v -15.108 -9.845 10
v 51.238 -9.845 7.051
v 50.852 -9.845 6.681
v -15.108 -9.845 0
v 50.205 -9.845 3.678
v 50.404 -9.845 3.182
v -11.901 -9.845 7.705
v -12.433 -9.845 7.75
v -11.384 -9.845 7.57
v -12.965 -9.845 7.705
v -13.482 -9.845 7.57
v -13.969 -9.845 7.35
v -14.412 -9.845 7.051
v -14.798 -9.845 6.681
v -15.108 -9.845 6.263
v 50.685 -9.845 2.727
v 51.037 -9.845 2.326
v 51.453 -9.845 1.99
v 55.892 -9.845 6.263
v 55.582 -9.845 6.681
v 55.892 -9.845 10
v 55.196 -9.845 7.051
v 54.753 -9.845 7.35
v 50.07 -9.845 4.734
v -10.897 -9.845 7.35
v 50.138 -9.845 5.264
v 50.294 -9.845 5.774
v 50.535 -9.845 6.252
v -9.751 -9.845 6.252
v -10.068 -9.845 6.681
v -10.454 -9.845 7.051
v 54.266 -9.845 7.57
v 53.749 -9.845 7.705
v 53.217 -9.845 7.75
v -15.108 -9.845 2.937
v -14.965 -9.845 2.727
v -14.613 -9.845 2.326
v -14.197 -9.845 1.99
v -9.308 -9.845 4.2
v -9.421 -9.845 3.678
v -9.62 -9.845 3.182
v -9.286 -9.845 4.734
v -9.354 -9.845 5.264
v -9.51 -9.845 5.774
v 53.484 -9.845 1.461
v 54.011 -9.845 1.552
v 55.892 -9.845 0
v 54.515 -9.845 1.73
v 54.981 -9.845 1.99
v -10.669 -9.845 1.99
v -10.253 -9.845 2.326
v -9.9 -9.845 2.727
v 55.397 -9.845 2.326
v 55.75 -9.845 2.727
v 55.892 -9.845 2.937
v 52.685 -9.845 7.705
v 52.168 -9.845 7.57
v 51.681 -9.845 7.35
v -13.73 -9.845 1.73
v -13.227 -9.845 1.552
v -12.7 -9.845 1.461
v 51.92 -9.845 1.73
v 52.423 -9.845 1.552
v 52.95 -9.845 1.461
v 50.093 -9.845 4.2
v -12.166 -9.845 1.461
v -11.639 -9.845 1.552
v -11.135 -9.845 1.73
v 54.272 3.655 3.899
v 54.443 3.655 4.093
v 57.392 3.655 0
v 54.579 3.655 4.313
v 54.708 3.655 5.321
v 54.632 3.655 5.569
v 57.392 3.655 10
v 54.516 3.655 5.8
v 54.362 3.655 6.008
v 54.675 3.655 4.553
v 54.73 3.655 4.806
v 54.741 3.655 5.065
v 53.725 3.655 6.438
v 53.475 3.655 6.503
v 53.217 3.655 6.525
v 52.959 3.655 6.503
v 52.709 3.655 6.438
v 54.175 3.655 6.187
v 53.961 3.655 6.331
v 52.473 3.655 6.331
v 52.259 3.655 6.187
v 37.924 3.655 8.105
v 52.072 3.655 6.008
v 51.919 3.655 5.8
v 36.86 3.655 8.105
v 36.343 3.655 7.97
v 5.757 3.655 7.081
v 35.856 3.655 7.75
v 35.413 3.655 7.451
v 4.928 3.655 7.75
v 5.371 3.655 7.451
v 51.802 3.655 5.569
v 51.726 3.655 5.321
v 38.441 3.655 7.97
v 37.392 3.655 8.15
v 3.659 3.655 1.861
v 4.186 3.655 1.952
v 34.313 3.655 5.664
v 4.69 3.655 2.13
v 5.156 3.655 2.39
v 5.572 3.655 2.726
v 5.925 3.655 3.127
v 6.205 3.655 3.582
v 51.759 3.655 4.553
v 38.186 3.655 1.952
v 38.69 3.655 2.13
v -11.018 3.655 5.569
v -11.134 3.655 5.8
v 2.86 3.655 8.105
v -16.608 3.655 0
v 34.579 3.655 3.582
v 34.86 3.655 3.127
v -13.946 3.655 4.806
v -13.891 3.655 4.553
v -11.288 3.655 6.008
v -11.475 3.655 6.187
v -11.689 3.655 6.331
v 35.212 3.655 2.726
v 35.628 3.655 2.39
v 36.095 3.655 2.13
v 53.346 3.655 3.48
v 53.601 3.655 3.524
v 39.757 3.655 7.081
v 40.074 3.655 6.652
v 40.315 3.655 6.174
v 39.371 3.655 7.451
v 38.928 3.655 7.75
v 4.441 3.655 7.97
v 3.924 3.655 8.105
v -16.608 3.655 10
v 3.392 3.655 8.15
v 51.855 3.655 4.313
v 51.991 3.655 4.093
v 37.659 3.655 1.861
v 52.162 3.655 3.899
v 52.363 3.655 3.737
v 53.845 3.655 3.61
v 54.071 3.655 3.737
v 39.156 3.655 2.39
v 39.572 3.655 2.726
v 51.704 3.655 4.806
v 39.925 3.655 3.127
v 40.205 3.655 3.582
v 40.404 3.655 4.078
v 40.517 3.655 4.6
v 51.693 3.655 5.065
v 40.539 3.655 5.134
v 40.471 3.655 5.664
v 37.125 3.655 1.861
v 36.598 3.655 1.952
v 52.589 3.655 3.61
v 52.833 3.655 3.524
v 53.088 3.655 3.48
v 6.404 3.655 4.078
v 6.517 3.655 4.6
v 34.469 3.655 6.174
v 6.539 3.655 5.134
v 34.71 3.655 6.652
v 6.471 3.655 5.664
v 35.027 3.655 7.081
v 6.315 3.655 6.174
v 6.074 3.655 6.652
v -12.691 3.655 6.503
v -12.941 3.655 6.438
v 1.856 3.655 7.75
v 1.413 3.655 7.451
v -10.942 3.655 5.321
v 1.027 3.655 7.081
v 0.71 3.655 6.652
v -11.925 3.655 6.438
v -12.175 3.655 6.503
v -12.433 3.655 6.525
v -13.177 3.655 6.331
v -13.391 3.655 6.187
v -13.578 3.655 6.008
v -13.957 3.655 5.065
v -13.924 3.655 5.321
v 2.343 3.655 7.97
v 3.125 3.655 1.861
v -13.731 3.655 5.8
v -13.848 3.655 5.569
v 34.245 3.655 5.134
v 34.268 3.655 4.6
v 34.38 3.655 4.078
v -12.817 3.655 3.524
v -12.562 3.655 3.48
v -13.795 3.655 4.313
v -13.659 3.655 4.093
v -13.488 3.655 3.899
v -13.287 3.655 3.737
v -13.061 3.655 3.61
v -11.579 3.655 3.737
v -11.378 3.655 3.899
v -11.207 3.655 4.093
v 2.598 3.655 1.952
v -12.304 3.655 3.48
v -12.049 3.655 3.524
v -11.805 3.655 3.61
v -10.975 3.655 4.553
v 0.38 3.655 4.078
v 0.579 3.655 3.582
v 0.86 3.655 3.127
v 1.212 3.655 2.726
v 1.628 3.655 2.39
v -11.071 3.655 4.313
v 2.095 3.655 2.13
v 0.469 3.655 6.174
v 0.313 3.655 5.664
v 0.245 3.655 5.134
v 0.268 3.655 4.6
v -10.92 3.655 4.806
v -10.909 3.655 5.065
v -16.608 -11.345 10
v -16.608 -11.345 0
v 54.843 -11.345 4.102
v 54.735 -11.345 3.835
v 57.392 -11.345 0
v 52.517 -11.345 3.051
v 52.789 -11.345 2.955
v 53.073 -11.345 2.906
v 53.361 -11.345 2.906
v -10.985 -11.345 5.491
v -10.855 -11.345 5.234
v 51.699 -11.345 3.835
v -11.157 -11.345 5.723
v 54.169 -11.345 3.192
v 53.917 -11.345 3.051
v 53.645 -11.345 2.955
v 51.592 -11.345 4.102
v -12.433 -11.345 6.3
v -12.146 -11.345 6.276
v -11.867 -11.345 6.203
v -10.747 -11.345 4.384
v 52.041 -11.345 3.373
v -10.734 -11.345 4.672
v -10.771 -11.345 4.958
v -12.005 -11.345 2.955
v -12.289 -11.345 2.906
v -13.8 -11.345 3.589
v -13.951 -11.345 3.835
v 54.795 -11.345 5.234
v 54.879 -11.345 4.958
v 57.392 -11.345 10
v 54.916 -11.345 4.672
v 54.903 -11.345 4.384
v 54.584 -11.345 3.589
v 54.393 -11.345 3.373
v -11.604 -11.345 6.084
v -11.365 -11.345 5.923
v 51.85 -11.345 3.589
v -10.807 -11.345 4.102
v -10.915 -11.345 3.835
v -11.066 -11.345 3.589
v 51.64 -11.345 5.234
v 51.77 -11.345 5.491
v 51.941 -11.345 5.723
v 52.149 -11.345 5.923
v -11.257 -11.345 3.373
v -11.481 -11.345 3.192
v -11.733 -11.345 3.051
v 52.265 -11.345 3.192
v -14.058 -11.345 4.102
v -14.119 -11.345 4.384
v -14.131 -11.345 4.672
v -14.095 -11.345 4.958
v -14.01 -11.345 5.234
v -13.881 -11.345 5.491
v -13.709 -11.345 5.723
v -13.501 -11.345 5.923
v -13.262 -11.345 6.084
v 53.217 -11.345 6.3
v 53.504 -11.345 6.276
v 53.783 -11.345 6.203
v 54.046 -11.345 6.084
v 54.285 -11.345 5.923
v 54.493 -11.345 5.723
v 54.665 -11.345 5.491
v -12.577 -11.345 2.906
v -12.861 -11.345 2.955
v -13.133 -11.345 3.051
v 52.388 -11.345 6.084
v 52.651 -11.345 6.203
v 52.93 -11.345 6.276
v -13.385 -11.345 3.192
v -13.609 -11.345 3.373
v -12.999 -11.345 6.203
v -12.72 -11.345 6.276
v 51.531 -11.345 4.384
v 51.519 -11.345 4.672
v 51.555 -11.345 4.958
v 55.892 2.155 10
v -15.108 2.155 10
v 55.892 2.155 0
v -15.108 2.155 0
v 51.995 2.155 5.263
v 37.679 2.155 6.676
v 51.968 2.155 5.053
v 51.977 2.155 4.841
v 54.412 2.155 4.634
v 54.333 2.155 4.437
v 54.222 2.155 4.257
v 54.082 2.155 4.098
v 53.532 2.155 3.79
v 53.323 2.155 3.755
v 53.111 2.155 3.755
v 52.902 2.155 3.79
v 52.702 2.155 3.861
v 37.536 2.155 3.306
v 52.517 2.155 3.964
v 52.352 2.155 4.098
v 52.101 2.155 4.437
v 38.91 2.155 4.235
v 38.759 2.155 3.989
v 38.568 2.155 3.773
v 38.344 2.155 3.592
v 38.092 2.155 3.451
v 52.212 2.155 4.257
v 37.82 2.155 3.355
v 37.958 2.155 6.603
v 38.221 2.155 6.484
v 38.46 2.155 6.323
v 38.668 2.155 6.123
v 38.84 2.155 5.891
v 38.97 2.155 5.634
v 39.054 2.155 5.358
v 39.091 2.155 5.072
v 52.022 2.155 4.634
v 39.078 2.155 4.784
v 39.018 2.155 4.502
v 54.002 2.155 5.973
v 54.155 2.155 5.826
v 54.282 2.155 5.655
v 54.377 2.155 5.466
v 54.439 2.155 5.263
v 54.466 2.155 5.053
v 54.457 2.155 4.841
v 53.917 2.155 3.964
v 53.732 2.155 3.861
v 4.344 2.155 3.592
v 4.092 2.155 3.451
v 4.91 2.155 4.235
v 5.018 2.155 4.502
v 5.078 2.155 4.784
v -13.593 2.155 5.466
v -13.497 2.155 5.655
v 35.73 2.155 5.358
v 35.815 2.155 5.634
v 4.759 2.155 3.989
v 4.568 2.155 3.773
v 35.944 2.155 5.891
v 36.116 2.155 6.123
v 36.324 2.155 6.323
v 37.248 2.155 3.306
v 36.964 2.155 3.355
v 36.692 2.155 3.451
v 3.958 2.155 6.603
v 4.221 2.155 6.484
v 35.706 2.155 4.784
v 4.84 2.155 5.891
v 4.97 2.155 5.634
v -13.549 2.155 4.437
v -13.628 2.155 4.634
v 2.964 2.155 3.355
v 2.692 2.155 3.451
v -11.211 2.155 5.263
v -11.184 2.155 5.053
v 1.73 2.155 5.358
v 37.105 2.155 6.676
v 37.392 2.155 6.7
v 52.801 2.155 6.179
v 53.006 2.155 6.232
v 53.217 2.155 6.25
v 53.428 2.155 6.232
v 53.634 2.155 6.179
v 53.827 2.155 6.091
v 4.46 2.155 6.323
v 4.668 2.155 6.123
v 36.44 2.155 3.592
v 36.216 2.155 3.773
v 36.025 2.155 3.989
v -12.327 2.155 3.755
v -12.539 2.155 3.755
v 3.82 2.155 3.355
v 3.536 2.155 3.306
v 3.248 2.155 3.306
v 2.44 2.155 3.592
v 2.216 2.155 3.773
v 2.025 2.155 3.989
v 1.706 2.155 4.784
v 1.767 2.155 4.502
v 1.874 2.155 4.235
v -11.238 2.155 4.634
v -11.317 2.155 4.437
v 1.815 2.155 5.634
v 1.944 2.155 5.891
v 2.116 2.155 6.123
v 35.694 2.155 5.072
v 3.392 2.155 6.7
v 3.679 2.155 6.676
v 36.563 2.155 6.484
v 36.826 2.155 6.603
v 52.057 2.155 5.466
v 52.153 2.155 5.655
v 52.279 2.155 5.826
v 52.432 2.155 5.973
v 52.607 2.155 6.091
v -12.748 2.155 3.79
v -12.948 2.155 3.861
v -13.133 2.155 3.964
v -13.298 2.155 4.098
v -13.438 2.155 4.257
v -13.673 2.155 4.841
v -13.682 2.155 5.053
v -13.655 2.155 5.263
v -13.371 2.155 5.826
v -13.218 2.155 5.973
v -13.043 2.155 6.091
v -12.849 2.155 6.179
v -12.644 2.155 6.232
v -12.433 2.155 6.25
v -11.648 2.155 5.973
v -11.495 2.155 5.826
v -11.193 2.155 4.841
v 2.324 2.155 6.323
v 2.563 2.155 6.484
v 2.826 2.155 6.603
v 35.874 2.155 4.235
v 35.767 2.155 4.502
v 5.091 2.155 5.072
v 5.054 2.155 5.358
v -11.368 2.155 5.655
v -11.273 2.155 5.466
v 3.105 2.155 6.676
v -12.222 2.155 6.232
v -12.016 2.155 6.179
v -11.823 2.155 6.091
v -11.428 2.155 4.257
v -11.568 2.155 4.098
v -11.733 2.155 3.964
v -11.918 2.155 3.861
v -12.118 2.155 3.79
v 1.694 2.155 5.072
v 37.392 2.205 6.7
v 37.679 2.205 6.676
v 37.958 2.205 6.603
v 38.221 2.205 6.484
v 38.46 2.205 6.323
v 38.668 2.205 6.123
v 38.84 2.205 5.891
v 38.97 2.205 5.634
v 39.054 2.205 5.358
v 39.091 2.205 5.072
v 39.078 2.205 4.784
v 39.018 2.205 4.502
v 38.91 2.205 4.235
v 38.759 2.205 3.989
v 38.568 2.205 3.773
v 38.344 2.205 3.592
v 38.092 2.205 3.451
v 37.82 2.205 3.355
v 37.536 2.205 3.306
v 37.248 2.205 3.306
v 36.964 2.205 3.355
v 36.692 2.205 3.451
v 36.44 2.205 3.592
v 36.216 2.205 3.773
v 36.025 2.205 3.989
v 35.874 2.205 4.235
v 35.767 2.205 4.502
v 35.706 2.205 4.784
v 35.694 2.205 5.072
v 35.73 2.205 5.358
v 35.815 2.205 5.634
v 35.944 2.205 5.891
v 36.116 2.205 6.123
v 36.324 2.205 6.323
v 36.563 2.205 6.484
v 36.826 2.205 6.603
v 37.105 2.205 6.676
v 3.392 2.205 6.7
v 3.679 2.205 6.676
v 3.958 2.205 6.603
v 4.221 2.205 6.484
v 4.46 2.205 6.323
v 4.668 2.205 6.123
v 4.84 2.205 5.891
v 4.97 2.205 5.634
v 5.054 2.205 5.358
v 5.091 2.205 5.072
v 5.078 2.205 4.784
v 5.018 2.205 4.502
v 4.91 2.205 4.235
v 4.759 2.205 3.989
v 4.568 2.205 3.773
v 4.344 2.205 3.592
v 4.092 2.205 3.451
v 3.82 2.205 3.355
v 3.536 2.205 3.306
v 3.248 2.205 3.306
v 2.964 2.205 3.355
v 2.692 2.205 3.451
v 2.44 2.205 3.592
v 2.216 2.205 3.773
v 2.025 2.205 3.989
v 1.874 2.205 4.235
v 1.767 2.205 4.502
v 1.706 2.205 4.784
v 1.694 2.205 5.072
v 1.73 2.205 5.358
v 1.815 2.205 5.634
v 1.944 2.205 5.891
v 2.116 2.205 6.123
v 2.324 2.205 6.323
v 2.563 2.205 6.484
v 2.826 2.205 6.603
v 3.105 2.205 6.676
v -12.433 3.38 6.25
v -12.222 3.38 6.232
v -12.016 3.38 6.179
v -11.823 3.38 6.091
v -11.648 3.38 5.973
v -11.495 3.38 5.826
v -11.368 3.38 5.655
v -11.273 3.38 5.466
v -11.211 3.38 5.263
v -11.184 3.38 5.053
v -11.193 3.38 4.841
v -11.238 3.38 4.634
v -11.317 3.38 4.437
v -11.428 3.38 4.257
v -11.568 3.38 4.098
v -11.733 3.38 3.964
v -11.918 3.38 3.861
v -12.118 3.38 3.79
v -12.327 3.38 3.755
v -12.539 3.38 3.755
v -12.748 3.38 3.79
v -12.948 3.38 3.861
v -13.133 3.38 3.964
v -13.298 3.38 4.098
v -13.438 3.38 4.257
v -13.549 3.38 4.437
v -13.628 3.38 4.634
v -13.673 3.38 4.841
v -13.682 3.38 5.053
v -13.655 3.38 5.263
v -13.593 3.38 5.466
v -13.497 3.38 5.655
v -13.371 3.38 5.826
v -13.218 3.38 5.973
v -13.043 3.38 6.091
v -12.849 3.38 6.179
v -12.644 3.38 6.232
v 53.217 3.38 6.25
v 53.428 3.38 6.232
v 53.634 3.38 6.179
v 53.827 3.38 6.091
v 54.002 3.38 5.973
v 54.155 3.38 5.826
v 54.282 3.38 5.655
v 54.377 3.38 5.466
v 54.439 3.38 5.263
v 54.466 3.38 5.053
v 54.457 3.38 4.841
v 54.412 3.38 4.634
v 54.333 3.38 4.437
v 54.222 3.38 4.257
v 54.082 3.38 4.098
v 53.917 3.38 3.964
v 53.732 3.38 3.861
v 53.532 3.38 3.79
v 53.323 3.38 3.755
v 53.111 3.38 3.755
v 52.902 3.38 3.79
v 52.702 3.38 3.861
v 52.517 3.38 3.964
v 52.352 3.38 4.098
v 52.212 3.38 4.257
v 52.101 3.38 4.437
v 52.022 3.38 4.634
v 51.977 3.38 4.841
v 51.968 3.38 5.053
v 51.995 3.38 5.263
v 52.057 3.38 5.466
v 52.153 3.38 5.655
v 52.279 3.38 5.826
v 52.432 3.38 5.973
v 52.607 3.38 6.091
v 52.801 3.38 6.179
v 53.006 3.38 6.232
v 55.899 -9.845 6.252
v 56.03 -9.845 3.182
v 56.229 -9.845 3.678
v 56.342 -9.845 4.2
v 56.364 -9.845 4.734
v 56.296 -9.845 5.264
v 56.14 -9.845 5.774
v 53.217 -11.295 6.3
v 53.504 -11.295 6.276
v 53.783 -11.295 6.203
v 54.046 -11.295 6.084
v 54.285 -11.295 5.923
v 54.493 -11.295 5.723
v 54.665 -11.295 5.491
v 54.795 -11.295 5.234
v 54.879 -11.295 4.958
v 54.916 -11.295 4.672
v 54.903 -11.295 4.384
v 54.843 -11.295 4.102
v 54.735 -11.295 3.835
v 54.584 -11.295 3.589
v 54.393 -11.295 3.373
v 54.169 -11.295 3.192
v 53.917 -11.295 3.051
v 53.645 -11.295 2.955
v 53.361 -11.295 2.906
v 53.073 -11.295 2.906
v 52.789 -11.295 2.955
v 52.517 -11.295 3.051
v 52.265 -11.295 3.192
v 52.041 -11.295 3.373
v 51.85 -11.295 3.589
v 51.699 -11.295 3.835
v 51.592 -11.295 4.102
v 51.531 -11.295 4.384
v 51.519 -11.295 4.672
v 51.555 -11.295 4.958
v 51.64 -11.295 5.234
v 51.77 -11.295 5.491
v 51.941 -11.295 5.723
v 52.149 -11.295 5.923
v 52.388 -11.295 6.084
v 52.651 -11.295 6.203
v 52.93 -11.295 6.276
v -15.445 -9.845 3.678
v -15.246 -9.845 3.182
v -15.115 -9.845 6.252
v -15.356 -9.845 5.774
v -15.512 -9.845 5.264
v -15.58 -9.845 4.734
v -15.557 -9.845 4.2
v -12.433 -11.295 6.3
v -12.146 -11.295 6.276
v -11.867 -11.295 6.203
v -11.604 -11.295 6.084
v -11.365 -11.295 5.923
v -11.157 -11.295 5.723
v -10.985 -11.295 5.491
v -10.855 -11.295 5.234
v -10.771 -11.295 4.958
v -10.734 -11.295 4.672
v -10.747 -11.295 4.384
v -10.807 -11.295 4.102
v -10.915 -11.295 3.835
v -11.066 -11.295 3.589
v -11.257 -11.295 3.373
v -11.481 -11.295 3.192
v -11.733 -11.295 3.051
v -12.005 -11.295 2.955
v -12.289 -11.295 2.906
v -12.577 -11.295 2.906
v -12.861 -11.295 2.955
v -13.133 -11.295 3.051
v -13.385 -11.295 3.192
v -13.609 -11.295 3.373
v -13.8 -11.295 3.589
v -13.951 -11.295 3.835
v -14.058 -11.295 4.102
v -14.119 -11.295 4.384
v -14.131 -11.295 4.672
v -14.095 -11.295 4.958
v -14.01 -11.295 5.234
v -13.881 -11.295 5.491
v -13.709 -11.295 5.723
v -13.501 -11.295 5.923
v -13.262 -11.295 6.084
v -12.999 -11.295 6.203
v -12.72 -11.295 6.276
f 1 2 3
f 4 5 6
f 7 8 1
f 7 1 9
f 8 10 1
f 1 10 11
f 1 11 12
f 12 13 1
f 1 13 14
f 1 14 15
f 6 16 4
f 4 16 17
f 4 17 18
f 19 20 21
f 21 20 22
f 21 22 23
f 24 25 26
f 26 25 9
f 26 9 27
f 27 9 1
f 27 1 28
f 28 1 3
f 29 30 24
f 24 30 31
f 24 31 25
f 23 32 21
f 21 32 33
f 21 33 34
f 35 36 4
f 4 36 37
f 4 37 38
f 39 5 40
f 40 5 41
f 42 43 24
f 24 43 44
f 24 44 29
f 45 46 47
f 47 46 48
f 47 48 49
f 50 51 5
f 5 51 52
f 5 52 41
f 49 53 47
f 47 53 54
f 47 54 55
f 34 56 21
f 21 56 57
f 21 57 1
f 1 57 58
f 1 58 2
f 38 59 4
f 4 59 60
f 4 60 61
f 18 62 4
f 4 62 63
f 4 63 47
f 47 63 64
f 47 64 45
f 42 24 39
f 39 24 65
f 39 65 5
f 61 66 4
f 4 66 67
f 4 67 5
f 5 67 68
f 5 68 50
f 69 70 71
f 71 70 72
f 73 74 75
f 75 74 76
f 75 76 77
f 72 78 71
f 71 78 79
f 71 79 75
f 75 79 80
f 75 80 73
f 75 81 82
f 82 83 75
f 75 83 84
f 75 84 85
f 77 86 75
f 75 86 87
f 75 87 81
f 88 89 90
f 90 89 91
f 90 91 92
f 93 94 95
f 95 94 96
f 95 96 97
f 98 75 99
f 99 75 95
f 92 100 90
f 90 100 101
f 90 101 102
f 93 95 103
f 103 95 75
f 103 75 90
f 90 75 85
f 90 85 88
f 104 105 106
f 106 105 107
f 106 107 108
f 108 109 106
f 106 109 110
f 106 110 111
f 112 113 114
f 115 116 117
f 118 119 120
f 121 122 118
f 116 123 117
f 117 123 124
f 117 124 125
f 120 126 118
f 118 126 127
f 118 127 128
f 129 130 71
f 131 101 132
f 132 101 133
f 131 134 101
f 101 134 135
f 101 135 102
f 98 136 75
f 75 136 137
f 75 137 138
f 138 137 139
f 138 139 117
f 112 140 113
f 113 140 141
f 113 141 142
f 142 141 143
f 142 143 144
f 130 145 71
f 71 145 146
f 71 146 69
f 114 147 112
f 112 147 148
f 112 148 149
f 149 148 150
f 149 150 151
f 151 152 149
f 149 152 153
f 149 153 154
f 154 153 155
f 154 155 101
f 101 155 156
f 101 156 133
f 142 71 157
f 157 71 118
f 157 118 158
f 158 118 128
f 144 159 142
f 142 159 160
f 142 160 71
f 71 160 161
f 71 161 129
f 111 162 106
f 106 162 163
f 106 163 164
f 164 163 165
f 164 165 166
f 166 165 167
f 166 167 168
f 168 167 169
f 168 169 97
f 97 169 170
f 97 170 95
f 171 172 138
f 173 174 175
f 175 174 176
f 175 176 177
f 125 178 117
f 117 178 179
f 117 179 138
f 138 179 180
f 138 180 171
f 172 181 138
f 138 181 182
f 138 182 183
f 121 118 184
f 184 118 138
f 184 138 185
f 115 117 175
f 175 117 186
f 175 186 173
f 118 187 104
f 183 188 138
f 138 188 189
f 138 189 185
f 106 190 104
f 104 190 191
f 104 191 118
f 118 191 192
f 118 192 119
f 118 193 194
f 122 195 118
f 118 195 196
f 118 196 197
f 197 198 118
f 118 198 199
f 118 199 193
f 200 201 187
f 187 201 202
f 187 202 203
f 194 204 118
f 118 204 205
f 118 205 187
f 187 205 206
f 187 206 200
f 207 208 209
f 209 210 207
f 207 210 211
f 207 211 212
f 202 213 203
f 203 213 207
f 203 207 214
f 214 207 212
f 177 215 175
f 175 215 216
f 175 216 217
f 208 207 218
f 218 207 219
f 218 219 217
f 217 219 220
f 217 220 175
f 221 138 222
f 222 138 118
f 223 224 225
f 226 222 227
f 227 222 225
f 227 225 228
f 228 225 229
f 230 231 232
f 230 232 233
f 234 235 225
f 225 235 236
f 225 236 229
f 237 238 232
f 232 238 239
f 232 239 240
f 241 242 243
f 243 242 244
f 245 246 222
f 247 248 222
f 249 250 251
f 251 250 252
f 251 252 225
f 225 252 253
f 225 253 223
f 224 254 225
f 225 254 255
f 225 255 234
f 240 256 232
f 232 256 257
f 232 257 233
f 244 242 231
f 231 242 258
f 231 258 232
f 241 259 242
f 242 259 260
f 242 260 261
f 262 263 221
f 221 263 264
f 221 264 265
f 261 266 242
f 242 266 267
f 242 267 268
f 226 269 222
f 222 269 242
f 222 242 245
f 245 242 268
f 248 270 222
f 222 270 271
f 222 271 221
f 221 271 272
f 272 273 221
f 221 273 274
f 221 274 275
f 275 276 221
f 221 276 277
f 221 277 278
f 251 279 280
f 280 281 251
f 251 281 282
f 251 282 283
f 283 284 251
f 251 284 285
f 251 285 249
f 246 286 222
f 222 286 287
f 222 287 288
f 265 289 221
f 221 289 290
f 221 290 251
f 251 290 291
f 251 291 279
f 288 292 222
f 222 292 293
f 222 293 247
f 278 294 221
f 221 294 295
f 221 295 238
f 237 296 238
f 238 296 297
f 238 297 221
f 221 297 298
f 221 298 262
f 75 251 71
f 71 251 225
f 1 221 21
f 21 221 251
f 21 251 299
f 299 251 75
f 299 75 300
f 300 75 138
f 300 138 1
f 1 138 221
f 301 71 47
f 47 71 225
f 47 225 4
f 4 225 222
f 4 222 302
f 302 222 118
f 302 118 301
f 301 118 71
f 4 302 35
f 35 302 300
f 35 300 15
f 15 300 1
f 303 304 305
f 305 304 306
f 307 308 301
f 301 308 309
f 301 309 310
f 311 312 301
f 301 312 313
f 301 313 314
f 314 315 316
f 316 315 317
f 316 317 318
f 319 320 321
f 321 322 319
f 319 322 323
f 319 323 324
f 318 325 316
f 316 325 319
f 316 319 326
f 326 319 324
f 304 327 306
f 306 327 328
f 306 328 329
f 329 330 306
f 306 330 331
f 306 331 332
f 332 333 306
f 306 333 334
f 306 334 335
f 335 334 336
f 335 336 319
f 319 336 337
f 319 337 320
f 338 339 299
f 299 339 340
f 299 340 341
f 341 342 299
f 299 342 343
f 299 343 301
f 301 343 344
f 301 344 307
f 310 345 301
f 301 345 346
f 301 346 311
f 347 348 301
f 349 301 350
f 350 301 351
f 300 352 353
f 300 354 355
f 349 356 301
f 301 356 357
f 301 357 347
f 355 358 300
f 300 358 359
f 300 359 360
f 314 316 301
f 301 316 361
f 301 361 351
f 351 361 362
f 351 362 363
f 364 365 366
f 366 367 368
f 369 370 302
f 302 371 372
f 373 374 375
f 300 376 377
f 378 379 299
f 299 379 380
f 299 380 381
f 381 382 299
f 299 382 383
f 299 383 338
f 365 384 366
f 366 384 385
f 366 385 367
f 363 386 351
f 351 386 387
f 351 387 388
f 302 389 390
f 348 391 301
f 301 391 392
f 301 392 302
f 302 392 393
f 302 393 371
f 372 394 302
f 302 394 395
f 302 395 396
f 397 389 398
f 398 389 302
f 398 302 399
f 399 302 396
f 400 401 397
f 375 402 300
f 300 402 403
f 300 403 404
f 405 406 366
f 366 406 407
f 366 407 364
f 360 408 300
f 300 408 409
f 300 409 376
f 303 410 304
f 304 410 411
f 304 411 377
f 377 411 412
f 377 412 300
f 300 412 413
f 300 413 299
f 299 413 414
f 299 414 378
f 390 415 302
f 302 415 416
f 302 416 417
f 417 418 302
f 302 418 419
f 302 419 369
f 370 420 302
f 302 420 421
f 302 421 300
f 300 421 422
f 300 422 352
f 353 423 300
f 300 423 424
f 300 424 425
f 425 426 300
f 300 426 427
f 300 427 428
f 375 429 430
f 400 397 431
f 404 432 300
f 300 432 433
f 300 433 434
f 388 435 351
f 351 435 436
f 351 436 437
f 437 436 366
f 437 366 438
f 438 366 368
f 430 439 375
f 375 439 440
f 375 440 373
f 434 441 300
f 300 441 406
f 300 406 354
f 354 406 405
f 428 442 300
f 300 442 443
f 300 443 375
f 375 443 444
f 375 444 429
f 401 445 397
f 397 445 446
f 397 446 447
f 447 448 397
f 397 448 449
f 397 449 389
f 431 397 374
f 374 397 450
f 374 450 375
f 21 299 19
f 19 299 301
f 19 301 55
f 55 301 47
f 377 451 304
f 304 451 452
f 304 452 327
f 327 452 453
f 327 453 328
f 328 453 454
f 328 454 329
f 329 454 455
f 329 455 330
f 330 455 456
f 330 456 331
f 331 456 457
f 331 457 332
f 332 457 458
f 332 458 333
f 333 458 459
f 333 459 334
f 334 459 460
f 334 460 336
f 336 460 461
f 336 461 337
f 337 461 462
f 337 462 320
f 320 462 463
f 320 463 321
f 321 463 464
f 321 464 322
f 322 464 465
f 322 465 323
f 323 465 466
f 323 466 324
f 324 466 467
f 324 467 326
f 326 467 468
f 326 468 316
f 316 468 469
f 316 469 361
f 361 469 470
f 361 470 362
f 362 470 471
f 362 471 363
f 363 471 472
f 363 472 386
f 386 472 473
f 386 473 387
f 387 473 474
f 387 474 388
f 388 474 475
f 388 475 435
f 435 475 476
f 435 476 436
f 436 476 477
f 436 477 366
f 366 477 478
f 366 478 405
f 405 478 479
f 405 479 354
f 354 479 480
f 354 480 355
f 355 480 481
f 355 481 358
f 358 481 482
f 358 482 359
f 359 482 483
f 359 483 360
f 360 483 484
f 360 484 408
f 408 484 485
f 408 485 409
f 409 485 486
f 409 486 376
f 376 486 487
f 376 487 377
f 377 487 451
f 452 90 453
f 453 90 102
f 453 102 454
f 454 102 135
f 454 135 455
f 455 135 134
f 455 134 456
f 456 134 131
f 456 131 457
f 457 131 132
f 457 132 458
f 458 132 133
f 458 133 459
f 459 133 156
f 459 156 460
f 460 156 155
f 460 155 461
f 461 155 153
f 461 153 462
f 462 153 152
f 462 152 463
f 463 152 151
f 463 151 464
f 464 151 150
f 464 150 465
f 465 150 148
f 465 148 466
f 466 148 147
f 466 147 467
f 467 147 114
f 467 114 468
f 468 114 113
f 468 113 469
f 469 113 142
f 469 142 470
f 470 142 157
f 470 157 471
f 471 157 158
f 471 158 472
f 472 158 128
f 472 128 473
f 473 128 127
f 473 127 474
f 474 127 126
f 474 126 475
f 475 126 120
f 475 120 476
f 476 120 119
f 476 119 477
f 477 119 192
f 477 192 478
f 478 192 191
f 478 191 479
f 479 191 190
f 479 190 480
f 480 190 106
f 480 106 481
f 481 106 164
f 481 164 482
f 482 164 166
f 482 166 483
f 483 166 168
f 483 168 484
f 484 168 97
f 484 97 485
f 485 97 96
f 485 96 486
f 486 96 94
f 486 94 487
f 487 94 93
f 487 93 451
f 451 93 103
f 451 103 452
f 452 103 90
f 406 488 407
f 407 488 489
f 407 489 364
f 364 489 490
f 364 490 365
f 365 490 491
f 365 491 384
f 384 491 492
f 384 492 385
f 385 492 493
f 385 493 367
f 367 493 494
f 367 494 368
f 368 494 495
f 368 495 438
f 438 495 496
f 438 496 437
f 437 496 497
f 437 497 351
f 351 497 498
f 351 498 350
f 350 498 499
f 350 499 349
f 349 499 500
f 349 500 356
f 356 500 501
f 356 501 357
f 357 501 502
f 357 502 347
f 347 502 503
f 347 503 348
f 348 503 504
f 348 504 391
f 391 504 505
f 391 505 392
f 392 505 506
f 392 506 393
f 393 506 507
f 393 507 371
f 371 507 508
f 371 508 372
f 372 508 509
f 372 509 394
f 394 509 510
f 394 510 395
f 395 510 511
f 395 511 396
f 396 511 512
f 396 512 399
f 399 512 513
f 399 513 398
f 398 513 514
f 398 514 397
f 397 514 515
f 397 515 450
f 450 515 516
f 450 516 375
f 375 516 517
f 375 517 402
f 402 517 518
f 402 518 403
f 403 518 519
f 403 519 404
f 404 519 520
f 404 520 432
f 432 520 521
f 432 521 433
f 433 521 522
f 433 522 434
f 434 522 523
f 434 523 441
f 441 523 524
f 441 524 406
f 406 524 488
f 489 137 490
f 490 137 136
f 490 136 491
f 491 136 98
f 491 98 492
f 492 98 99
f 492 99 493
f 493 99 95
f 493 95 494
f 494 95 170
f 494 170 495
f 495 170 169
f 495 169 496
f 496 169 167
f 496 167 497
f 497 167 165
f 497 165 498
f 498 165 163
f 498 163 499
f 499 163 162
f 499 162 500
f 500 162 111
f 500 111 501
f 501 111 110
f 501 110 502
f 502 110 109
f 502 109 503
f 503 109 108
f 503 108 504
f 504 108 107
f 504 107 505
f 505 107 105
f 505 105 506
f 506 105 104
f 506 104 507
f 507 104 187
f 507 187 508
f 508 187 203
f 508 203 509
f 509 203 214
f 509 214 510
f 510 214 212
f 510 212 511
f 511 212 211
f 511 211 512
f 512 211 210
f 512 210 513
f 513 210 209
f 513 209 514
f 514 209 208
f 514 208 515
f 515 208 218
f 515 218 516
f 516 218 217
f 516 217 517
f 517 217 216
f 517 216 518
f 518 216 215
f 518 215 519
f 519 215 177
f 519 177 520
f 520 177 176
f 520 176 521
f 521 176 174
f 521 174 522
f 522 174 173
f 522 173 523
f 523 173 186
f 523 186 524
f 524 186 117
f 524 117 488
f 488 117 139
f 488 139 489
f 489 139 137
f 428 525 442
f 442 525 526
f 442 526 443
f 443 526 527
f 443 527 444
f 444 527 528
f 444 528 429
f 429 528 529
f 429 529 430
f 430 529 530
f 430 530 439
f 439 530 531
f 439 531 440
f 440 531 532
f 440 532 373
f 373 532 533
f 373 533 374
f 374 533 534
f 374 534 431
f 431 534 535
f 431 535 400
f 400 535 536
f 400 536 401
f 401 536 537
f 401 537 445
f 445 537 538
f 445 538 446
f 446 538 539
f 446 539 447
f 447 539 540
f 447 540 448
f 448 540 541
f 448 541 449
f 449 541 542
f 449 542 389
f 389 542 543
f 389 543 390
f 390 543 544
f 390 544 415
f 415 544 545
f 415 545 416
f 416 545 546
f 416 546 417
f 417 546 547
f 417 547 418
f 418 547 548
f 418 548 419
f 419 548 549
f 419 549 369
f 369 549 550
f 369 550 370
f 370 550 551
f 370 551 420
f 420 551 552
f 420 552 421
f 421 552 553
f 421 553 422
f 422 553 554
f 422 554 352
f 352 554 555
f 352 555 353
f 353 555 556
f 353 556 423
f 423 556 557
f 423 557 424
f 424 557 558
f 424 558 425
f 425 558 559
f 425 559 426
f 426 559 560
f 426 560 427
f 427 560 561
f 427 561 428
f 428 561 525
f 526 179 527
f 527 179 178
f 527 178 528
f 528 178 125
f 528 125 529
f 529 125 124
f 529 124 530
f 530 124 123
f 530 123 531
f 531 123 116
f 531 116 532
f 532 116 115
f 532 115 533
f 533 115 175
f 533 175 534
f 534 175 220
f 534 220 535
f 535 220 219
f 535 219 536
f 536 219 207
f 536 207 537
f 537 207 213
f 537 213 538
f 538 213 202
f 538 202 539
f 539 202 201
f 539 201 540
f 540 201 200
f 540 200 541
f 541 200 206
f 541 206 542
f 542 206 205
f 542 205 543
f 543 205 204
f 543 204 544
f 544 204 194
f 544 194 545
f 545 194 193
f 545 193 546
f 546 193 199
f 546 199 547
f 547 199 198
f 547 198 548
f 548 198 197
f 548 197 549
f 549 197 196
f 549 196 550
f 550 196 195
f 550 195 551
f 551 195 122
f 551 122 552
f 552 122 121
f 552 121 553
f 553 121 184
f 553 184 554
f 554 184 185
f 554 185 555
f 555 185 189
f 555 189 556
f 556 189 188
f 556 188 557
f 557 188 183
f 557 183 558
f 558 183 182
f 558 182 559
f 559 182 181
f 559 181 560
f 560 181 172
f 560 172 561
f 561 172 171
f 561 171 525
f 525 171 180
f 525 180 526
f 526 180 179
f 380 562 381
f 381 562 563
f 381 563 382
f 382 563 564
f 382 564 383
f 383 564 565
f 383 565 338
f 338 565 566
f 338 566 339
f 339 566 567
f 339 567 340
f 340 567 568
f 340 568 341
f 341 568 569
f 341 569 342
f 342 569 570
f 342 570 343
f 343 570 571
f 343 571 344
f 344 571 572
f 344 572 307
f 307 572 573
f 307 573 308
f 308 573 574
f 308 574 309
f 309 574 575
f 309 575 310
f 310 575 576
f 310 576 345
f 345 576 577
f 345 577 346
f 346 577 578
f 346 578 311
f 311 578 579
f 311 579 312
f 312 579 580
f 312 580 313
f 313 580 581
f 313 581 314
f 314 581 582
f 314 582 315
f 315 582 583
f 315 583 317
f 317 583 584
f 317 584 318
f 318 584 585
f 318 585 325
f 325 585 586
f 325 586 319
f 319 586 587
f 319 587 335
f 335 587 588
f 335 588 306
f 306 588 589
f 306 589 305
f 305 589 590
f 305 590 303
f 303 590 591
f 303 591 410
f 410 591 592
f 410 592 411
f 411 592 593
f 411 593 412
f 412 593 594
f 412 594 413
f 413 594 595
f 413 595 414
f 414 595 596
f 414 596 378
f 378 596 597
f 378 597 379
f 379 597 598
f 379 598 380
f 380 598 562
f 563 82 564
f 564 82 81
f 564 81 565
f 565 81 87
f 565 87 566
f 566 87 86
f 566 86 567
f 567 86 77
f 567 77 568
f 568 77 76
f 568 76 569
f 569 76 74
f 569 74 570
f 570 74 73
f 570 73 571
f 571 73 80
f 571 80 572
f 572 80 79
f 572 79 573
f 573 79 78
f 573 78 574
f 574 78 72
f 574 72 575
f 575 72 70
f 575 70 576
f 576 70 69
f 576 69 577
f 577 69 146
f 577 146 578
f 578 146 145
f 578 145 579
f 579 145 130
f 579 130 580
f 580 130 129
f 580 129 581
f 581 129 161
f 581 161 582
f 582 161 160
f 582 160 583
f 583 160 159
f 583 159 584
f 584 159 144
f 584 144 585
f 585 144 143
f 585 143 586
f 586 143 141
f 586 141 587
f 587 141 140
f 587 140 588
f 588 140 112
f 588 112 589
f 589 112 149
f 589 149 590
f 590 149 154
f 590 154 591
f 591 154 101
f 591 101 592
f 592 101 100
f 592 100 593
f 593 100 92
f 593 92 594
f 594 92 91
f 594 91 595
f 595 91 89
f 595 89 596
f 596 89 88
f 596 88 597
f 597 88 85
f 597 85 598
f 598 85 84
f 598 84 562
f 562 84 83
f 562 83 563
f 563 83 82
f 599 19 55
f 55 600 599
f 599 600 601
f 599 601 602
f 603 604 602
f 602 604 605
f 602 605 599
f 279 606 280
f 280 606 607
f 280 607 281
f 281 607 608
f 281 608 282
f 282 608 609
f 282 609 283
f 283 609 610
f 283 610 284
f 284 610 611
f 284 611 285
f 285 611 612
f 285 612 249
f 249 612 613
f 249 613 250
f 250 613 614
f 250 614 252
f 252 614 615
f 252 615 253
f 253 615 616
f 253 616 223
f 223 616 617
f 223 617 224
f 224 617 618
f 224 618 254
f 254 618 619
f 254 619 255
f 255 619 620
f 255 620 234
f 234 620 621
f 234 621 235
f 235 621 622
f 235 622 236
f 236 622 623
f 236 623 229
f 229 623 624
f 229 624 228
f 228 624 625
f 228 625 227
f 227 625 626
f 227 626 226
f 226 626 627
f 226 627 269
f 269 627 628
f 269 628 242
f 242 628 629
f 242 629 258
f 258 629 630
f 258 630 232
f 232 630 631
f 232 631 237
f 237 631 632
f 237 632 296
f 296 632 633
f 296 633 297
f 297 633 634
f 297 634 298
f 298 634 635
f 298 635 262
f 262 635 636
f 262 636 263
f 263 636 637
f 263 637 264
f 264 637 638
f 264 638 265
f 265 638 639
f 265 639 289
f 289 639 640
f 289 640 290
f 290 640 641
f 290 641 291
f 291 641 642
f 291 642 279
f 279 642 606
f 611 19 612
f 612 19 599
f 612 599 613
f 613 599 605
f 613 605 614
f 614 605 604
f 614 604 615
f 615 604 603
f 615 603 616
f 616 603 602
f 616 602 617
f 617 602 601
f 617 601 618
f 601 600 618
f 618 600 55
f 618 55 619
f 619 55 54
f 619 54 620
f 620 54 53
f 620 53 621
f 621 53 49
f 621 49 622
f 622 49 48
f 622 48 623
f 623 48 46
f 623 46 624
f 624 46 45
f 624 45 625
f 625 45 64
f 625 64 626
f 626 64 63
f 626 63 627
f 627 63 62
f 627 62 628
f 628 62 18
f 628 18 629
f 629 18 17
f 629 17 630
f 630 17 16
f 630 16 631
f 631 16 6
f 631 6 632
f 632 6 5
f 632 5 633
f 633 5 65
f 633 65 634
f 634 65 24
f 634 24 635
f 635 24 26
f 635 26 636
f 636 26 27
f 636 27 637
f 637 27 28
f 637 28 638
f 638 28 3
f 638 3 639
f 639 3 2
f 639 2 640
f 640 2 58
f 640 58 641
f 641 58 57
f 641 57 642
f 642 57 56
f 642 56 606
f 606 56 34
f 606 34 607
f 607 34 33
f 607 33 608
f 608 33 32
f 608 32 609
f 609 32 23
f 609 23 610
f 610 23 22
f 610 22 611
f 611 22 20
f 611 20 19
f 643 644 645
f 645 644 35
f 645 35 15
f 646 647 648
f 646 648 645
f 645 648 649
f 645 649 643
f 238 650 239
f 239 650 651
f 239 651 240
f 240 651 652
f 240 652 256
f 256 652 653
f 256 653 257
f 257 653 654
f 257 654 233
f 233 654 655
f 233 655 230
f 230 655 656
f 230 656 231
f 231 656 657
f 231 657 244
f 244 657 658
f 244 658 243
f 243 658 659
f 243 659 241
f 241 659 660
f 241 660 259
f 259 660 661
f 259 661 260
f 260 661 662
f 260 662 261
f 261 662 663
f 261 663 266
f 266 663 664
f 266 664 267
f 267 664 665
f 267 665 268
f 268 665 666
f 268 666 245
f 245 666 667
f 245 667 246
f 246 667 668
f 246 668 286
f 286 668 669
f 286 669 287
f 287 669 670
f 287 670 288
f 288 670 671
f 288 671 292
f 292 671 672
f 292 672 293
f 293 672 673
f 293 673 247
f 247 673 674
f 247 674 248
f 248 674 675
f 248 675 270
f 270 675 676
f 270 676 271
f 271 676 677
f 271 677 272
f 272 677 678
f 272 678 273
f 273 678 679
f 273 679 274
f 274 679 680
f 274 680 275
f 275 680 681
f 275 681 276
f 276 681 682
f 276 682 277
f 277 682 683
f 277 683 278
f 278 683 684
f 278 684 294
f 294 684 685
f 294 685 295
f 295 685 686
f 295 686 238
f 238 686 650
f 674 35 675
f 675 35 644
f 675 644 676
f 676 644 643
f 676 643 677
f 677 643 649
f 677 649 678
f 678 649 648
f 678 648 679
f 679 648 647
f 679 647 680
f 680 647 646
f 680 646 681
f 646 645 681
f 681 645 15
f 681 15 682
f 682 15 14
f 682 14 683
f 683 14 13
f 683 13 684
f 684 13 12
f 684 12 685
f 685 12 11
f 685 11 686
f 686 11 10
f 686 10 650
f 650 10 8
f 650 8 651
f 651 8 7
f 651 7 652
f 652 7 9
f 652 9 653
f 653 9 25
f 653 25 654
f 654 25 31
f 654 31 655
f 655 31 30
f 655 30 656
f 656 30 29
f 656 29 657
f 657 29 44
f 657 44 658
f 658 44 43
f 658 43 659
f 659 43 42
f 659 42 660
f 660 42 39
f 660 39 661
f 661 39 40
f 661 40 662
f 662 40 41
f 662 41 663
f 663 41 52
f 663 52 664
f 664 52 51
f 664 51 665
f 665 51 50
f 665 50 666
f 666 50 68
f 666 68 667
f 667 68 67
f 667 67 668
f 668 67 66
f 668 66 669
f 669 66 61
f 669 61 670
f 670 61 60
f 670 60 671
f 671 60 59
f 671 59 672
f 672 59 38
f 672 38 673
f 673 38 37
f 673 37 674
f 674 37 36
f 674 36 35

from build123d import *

# Parameters (mm, degrees)
SKIZZE1_W                                      = 74
SKIZZE1_H                                      = 15
AUFSATZ_LINEAR_AUSTRAGEN1_DEPTH                = 10
SCHNITT_LINEAR_AUSTRAGEN1_REACH                = 61.351
SKIZZE2_W                                      = 71
SKIZZE2_H                                      = 12
FORMSENKUNG_F_R_M3_LINSENSENKSCHRAUB_2_COUNT   = 2
FORMSENKUNG_F_R_M3_LINSENSENKSCHRAUB_2_PITCH   = 34
M3_GEWINDEBOHRUNG1_AT_2_COUNT                  = 2
M3_GEWINDEBOHRUNG1_AT_2_PITCH                  = 65.65
FORMSENKUNG_F_R_M3_LINSENSENKSCHRAUB_3_A_COUNT = 2
FORMSENKUNG_F_R_M3_LINSENSENKSCHRAUB_3_A_PITCH = 65.65


with BuildPart() as part:
    # Skizze1 → Aufsatz-Linear austragen1 (new body)
    with BuildSketch(Plane.XY):
        with Locations((20.392098069, -3.844827586)):
            Rectangle(SKIZZE1_W, SKIZZE1_H)
    extrude(amount=AUFSATZ_LINEAR_AUSTRAGEN1_DEPTH)

    # Skizze2 → Schnitt-Linear austragen1 (cut, up to next)
    with BuildSketch(Plane.XY.offset(10), mode=Mode.PRIVATE) as schnitt_linear_austragen1_sk1:
        with Locations((20.392098069, -3.844827586)):
            Rectangle(SKIZZE2_W, SKIZZE2_H)
    schnitt_linear_austragen1_tool1 = extrude(schnitt_linear_austragen1_sk1.sketch, amount=-SCHNITT_LINEAR_AUSTRAGEN1_REACH, mode=Mode.PRIVATE) & part.part
    add(schnitt_linear_austragen1_tool1.solids().sort_by_distance((20.392098, -3.844828, 10))[0], mode=Mode.SUBTRACT)

    # Skizze10 → Formsenkung f_r M3 Linsensenkschraube mi (revolve, cut)
    with BuildSketch(Plane(origin=(3.392098069, 3.655172414, 5), x_dir=(0, 0, 1), z_dir=(1, 0, 0))):
        Polygon((0, 0), (0, 1.5), (1.7, 1.5), (1.7, 1.45), (3.15, 0), align=None)
    formsenkung_f_r_m3_linsensenkschraube_mi = revolve(axis=Axis((3.392098069, 10.005172414, 5), (0, -1, 0)), mode=Mode.SUBTRACT)

    # Formsenkung f_r M3 Linsensenkschraub 2: Formsenkung f_r M3 Linsensenkschraube mi ×2
    with Locations(*[(i * FORMSENKUNG_F_R_M3_LINSENSENKSCHRAUB_2_PITCH, 0, 0) for i in range(1, FORMSENKUNG_F_R_M3_LINSENSENKSCHRAUB_2_COUNT)]):
        add(formsenkung_f_r_m3_linsensenkschraube_mi, mode=Mode.SUBTRACT)

    # Skizze12 → M3 Gewindebohrung1 (revolve, cut)
    with BuildSketch(Plane(origin=(53.217098069, 3.655172414, 5), x_dir=(0, 0, 1), z_dir=(1, 0, 0))):
        Polygon((0, 0), (0, 1.5), (1.25, 1.5), (1.25, 0.275), (1.525, 0), align=None)
    m3_gewindebohrung1 = revolve(axis=Axis((53.217098069, 10.005172414, 5), (0, -1, 0)), mode=Mode.SUBTRACT)

    # M3 Gewindebohrung1 at 2: M3 Gewindebohrung1 ×2
    with Locations(*[(-i * M3_GEWINDEBOHRUNG1_AT_2_PITCH, 0, 0) for i in range(1, M3_GEWINDEBOHRUNG1_AT_2_COUNT)]):
        add(m3_gewindebohrung1, mode=Mode.SUBTRACT)

    # Skizze13 → Formsenkung f_r M3 Linsensenkschraub 3 (revolve, cut)
    with BuildSketch(Plane(origin=(-12.432901931, -9.844827586, 4.6), x_dir=(0, 0, 1), z_dir=(1, 0, 0))):
        Polygon((0, 0), (0, 1.5), (1.7, 1.5), (1.7, 1.45), (3.15, 0), align=None)
    formsenkung_f_r_m3_linsensenkschraub_3 = revolve(axis=Axis((-12.432901931, -3.494827586, 4.6), (0, -1, 0)), mode=Mode.SUBTRACT)

    # Formsenkung f_r M3 Linsensenkschraub 3 a: Formsenkung f_r M3 Linsensenkschraub 3 ×2
    with Locations(*[(i * FORMSENKUNG_F_R_M3_LINSENSENKSCHRAUB_3_A_PITCH, 0, 0) for i in range(1, FORMSENKUNG_F_R_M3_LINSENSENKSCHRAUB_3_A_COUNT)]):
        add(formsenkung_f_r_m3_linsensenkschraub_3, mode=Mode.SUBTRACT)


solid = part.part
